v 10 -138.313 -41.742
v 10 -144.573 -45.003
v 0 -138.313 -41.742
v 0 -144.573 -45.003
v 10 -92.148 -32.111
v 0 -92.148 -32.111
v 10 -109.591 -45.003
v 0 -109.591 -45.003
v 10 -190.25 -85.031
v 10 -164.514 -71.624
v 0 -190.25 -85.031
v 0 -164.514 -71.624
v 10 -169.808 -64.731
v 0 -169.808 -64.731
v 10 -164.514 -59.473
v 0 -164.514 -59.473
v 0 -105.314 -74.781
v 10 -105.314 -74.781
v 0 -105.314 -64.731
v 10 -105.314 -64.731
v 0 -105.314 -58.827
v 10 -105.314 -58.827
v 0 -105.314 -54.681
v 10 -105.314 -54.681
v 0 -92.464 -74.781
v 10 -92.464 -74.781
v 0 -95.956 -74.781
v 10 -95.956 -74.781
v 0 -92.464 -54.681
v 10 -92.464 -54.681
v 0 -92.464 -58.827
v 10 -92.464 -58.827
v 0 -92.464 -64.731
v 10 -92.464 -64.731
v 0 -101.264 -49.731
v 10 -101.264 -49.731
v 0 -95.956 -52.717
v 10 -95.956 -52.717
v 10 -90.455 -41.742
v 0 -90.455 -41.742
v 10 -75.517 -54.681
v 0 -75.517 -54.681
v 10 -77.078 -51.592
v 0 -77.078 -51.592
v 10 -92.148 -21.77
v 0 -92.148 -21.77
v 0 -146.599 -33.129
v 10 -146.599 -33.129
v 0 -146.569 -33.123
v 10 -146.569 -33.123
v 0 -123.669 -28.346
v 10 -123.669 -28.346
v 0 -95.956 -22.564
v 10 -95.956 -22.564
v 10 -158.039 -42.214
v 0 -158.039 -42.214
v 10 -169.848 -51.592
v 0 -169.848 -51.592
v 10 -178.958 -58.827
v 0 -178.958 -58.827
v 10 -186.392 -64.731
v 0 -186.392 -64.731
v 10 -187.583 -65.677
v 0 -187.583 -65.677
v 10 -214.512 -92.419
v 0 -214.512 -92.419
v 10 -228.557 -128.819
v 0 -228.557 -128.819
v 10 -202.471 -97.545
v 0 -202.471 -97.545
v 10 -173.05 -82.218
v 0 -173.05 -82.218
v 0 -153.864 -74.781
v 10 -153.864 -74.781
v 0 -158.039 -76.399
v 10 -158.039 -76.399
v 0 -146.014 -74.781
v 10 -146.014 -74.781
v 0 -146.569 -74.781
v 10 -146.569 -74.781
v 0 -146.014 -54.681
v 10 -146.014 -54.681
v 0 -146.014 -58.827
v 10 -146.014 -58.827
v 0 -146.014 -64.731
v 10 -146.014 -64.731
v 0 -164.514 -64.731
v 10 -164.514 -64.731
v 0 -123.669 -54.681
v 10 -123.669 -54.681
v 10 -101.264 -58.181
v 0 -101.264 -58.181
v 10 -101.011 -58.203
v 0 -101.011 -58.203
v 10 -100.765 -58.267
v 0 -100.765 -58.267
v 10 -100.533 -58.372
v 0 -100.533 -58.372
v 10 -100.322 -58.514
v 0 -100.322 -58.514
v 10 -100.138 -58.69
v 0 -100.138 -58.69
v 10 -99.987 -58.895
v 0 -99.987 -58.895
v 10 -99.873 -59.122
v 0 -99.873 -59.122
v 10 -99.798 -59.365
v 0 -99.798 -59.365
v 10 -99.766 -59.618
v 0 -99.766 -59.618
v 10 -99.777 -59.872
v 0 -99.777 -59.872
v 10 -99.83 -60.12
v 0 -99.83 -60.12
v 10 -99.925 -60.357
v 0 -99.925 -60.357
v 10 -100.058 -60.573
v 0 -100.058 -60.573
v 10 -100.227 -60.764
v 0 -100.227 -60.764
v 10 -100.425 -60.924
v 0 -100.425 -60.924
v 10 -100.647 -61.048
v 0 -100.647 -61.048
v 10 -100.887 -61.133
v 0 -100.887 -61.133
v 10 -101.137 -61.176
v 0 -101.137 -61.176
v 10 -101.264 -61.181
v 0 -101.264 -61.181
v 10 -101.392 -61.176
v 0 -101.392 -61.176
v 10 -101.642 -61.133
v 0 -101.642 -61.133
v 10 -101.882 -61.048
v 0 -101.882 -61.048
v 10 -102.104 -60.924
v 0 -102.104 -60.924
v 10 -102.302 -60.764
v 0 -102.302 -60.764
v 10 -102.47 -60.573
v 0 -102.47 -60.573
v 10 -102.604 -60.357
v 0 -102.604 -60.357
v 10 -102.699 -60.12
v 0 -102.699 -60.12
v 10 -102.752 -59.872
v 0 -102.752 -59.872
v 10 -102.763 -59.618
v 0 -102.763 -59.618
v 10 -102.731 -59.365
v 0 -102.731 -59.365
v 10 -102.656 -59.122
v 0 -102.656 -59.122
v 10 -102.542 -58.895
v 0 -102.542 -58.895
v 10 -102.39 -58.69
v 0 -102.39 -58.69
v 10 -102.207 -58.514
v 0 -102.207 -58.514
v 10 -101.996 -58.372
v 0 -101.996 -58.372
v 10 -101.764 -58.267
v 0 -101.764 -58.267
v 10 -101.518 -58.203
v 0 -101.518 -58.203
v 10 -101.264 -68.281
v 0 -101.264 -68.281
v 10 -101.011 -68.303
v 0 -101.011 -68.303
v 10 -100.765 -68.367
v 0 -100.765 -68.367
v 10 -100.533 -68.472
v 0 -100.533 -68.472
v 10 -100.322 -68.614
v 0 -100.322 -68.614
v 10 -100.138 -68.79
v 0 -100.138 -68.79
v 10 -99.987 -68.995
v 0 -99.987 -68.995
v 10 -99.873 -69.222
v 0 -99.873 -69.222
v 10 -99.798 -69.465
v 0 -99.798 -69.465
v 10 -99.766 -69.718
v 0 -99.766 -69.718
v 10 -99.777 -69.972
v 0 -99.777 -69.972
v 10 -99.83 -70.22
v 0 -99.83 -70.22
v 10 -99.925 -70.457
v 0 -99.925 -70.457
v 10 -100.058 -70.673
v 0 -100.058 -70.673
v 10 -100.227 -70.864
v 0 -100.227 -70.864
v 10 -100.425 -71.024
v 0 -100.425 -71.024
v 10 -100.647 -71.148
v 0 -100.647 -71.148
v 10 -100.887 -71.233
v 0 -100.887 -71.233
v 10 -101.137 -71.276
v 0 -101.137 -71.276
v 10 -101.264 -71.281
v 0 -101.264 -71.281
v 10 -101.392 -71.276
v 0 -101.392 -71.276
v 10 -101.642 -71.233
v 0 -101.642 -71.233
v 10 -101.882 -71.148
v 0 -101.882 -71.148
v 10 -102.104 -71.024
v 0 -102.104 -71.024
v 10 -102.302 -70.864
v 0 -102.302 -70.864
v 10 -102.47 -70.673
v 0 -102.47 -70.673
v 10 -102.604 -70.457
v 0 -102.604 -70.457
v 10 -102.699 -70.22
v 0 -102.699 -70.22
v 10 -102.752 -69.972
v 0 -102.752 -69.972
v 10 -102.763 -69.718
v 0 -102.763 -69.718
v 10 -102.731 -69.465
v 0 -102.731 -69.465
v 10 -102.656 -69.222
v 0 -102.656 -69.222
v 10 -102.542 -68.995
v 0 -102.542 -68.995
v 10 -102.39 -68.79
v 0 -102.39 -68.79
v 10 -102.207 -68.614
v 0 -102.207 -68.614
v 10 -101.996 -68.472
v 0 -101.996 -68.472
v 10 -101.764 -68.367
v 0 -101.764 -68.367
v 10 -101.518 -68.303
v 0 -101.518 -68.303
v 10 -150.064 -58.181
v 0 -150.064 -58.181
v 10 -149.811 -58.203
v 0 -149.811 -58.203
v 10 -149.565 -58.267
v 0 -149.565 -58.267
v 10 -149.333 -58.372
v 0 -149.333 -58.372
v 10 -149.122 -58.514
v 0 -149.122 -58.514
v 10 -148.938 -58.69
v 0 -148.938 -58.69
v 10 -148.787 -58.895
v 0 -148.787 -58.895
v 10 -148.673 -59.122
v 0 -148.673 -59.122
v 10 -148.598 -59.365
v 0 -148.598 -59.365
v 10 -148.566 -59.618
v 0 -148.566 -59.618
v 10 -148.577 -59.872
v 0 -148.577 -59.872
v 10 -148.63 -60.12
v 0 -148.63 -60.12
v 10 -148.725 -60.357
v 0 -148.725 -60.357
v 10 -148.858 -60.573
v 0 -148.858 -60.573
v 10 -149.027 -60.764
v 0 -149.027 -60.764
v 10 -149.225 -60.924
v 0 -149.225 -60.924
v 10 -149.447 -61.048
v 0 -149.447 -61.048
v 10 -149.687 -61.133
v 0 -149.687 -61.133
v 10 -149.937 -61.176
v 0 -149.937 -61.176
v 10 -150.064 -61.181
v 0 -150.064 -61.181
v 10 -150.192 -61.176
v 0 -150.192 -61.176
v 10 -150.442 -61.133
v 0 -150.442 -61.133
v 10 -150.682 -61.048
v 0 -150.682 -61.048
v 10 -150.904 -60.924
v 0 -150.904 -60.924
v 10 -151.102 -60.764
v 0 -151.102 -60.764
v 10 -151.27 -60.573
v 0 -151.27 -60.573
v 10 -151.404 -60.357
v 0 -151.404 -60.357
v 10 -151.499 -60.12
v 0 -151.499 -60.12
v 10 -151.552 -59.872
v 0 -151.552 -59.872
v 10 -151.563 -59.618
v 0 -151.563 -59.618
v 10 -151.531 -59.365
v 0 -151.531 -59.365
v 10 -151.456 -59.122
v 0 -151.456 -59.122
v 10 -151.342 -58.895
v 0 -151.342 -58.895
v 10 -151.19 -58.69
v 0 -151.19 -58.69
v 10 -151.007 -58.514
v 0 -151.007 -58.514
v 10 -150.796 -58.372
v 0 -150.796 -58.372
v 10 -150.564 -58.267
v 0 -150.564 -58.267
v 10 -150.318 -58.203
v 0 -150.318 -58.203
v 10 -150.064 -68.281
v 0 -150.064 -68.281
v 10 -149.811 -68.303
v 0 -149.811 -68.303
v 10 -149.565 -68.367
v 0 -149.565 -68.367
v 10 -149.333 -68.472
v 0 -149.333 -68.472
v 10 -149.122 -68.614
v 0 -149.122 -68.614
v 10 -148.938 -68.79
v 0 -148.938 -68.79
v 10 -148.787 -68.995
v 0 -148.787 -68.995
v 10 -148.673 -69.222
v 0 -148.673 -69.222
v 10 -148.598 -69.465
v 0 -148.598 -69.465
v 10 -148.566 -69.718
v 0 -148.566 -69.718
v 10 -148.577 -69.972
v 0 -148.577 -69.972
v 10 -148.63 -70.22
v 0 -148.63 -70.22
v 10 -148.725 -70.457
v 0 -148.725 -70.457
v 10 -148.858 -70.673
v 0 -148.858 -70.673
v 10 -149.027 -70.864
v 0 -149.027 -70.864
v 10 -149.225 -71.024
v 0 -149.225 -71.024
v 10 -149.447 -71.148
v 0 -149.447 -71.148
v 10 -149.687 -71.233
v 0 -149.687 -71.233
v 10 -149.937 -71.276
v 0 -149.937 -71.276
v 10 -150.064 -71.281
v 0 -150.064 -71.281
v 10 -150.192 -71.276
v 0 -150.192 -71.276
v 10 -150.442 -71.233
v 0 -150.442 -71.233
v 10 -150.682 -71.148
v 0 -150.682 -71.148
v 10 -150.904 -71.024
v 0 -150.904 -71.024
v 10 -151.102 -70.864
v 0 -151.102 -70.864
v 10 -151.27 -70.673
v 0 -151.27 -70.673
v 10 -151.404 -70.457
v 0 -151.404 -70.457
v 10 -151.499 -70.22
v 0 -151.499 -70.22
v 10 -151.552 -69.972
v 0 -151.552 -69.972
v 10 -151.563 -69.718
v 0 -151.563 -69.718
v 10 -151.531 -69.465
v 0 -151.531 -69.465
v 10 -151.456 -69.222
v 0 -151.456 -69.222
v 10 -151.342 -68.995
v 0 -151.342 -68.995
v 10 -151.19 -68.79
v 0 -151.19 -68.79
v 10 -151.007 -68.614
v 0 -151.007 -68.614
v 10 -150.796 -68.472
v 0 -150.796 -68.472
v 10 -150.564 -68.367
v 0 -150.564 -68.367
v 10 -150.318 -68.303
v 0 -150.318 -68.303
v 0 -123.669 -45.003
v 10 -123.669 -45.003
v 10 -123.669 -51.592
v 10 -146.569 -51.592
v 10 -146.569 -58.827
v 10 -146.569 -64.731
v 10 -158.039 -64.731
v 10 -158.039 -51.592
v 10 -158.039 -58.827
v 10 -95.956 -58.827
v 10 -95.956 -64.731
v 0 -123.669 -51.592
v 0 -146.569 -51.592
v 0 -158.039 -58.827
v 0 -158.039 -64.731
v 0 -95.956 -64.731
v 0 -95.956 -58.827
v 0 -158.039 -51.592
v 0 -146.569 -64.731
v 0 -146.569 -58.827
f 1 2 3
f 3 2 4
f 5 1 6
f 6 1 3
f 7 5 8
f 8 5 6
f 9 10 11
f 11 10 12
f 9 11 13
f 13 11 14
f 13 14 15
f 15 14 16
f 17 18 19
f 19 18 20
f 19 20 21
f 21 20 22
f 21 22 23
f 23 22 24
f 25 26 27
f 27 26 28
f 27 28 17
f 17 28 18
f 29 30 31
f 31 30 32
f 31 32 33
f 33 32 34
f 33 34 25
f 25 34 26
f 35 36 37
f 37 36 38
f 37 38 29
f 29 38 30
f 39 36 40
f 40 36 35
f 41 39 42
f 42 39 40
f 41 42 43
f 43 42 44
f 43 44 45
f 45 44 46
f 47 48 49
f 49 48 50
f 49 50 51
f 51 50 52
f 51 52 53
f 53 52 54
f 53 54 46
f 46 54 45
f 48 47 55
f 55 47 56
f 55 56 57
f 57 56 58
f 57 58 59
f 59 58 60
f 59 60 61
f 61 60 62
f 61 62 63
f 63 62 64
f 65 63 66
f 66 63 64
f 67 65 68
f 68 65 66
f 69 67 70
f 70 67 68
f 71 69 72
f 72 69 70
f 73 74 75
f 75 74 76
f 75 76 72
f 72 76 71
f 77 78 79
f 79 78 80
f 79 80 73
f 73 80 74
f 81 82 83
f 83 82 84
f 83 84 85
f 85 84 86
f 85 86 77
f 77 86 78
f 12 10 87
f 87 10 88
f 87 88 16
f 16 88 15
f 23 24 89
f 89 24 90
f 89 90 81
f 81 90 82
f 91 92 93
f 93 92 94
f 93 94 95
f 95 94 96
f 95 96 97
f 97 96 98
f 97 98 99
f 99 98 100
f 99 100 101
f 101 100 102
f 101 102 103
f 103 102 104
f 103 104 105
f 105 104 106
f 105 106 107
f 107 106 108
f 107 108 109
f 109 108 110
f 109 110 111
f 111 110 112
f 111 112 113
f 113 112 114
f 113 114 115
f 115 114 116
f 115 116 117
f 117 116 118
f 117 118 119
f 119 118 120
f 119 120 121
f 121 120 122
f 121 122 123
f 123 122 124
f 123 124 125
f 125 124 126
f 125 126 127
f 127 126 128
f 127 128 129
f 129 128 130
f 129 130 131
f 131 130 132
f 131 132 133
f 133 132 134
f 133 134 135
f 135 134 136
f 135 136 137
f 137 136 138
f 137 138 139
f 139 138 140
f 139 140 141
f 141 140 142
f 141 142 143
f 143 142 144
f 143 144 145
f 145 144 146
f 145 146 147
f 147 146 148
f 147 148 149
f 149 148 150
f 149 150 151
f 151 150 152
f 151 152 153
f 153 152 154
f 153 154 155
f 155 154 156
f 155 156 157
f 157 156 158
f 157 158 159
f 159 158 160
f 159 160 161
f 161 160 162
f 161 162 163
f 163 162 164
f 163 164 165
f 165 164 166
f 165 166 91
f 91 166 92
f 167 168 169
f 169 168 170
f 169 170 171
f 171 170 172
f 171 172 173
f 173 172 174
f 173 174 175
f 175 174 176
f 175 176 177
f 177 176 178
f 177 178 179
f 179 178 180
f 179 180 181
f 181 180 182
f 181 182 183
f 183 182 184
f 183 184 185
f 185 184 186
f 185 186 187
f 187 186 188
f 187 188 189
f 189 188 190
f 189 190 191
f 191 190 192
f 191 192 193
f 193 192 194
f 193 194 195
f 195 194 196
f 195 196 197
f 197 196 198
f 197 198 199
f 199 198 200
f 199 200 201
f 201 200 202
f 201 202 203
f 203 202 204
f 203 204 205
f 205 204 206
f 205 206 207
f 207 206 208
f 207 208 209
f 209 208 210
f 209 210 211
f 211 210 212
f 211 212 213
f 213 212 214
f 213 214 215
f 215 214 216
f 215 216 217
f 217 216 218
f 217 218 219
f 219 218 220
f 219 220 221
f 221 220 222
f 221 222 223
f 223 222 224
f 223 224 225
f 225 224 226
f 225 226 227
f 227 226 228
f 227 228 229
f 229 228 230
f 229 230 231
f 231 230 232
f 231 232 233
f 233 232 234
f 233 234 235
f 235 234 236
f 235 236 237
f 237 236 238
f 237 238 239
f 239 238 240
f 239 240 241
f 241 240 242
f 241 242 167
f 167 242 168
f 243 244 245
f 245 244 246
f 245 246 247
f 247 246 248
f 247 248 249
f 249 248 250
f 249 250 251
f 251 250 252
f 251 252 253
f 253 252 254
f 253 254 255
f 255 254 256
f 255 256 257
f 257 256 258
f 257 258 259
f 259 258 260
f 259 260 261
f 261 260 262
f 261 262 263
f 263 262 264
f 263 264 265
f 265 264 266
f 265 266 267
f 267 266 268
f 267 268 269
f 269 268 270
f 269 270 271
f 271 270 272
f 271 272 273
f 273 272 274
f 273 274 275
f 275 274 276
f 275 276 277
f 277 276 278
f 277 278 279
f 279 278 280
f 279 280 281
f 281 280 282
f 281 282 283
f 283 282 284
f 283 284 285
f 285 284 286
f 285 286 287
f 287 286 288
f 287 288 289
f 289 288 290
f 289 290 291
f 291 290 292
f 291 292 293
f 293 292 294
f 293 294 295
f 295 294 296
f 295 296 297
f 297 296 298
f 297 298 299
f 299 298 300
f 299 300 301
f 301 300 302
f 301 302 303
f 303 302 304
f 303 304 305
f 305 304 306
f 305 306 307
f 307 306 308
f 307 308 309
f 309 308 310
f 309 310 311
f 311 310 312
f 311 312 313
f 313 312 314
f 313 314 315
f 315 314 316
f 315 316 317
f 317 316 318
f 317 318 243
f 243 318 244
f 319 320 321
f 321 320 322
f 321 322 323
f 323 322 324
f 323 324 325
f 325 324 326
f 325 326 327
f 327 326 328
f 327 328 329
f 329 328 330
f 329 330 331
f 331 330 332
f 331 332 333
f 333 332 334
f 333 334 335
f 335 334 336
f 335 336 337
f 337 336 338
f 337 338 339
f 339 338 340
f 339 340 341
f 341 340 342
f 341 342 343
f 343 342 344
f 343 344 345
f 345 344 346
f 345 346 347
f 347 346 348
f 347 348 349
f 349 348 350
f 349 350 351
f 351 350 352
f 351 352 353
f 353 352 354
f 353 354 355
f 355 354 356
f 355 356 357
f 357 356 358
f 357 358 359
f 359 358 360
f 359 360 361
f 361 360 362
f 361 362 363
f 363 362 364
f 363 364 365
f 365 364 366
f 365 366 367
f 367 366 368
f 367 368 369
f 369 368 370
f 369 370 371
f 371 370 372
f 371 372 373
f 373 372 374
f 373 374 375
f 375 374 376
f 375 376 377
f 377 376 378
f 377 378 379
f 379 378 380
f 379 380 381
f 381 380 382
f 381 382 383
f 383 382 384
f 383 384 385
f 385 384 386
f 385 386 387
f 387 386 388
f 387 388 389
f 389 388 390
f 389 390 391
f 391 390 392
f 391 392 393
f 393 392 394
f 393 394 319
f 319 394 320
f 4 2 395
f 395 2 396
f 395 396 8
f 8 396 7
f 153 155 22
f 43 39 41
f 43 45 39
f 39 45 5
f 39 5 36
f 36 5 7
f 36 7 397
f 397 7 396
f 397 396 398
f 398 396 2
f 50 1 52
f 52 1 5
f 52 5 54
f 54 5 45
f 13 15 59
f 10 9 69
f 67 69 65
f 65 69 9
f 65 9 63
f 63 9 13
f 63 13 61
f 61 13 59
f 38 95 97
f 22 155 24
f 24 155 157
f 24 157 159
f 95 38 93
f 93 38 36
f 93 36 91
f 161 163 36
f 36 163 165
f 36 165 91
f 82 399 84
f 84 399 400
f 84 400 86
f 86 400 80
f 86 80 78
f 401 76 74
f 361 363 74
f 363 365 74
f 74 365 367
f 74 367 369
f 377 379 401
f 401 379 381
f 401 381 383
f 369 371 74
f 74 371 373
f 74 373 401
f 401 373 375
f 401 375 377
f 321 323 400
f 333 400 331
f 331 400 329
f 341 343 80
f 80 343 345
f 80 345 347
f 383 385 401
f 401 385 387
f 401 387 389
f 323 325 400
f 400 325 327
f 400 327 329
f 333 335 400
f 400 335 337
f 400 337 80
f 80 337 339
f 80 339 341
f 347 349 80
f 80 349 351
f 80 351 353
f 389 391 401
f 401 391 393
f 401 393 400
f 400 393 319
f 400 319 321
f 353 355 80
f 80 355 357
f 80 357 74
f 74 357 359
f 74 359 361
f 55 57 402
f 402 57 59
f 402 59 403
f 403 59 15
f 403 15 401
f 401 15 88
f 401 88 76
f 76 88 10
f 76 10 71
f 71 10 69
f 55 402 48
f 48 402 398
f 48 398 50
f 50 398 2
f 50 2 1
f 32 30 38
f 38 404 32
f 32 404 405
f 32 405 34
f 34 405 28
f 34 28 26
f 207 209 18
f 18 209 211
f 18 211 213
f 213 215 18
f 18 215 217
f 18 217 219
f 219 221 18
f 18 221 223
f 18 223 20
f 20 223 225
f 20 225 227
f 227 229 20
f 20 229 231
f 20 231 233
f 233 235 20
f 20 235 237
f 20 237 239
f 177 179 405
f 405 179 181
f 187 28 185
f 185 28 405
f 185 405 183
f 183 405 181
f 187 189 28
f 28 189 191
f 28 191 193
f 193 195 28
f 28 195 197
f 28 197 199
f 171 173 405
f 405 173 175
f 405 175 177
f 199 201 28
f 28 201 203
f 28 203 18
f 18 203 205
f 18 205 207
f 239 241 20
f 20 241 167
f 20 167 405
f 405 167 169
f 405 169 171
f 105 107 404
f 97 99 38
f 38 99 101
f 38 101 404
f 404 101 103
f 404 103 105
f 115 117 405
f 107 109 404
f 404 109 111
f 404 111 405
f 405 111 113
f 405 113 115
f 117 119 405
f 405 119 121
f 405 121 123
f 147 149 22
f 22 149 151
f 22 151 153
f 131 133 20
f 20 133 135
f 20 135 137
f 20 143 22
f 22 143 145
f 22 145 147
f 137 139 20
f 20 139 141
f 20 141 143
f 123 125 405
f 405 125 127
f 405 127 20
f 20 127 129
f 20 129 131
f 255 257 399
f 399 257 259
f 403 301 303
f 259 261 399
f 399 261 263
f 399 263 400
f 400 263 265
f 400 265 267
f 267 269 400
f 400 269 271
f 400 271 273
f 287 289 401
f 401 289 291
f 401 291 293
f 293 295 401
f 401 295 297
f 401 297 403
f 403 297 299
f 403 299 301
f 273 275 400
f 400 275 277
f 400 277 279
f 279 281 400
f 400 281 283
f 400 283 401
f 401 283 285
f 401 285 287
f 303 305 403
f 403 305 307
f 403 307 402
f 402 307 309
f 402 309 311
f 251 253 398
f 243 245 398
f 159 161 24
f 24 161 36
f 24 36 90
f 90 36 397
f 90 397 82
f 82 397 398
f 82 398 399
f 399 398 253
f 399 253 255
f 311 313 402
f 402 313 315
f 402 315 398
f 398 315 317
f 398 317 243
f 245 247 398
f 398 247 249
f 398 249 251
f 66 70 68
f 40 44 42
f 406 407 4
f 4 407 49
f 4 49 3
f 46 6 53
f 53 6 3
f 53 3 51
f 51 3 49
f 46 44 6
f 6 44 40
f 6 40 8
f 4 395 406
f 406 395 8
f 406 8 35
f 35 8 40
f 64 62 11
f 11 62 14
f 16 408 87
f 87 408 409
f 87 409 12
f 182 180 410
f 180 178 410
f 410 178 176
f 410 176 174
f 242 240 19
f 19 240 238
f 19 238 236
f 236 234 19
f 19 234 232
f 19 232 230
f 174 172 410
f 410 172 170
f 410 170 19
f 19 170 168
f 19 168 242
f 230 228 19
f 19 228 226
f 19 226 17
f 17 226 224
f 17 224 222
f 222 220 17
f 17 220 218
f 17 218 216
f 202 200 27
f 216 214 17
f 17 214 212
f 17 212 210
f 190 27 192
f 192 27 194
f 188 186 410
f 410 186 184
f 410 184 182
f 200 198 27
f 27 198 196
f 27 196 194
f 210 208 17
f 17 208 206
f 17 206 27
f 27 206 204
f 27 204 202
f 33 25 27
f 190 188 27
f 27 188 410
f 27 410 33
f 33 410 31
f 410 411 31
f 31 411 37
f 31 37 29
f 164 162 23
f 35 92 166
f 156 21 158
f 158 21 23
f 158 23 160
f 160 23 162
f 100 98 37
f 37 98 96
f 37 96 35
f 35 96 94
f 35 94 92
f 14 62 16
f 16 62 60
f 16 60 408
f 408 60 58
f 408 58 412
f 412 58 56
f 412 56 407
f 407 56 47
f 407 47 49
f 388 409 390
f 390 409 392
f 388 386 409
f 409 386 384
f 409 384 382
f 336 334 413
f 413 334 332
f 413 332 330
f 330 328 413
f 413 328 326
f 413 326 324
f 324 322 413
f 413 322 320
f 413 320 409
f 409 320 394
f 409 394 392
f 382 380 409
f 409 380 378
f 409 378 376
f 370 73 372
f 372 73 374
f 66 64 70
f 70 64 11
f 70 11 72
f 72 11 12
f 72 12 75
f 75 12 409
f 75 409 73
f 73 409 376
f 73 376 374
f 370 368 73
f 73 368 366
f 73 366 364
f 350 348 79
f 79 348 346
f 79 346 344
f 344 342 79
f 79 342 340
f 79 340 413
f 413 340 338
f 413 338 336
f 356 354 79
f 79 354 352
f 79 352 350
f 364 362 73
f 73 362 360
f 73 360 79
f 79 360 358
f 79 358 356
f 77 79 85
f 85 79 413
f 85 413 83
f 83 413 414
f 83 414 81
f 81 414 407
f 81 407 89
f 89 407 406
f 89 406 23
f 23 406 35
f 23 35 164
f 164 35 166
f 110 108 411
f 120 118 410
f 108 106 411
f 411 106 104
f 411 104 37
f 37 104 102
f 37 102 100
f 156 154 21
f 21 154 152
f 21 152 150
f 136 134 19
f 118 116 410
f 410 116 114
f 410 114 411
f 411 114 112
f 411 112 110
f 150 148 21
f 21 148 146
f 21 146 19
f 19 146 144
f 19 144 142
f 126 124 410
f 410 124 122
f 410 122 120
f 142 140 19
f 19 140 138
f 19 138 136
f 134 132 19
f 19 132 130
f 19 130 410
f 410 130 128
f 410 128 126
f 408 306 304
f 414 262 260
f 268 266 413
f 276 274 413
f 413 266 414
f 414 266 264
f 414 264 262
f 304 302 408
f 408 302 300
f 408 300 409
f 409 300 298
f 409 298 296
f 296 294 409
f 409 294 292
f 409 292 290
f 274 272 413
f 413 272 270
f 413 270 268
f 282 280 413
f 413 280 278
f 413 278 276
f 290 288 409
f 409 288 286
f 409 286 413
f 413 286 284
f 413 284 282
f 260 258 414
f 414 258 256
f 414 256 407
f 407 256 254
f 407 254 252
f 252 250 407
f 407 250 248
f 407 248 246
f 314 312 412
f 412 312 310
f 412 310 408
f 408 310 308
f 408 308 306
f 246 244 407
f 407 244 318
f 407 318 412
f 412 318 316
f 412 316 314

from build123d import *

# Parameters (mm, degrees)
SKETCH_7_R      = 1.5
EXTRUDE_2_DEPTH = 10


with BuildPart() as part:
    # 草图7 → 凸台-拉伸2 (new body)
    with BuildSketch(Plane(origin=(0, 0, 0), x_dir=(0, 0, -1), z_dir=(1, 0, 0))):
        Polygon((74.781222648, -105.314484454), (54.681222648, -105.314484454), (54.681222648, -146.014484454), (74.781222648, -146.014484454), (74.781222648, -153.864484454), (82.217885242, -173.050276706), (97.545045534, -202.471417533), (128.819415354, -228.557286652), (92.419152856, -214.512376165), (65.67699801, -187.583359255), (33.129337627, -146.599083723), (27.518646132, -119.704186977), (21.769974855, -92.147882993), (54.681222648, -75.517443579), (41.74198, -90.455051539), (49.731222648, -101.264484454), (54.681222648, -92.464484454), (65.67699801, -92.464484454), (74.781222648, -92.464484454), align=None)
        with Locations((69.781222648, -150.064484454)):
            Circle(SKETCH_7_R, mode=Mode.SUBTRACT)
        with Locations((59.681222648, -150.064484454)):
            Circle(SKETCH_7_R, mode=Mode.SUBTRACT)
        with Locations((69.781222648, -101.264484454)):
            Circle(SKETCH_7_R, mode=Mode.SUBTRACT)
        with Locations((59.681222648, -101.264484454)):
            Circle(SKETCH_7_R, mode=Mode.SUBTRACT)
        Polygon((85.031406178, -190.25046896), (71.623670801, -164.51374649), (59.47327237, -164.51374649), align=None, mode=Mode.SUBTRACT)
        Polygon((45.003171043, -144.573005818), (41.74198, -138.313009895), (32.111220405, -92.147882993), (45.003171043, -109.590672216), align=None, mode=Mode.SUBTRACT)
    extrude(amount=EXTRUDE_2_DEPTH)


solid = part.part
